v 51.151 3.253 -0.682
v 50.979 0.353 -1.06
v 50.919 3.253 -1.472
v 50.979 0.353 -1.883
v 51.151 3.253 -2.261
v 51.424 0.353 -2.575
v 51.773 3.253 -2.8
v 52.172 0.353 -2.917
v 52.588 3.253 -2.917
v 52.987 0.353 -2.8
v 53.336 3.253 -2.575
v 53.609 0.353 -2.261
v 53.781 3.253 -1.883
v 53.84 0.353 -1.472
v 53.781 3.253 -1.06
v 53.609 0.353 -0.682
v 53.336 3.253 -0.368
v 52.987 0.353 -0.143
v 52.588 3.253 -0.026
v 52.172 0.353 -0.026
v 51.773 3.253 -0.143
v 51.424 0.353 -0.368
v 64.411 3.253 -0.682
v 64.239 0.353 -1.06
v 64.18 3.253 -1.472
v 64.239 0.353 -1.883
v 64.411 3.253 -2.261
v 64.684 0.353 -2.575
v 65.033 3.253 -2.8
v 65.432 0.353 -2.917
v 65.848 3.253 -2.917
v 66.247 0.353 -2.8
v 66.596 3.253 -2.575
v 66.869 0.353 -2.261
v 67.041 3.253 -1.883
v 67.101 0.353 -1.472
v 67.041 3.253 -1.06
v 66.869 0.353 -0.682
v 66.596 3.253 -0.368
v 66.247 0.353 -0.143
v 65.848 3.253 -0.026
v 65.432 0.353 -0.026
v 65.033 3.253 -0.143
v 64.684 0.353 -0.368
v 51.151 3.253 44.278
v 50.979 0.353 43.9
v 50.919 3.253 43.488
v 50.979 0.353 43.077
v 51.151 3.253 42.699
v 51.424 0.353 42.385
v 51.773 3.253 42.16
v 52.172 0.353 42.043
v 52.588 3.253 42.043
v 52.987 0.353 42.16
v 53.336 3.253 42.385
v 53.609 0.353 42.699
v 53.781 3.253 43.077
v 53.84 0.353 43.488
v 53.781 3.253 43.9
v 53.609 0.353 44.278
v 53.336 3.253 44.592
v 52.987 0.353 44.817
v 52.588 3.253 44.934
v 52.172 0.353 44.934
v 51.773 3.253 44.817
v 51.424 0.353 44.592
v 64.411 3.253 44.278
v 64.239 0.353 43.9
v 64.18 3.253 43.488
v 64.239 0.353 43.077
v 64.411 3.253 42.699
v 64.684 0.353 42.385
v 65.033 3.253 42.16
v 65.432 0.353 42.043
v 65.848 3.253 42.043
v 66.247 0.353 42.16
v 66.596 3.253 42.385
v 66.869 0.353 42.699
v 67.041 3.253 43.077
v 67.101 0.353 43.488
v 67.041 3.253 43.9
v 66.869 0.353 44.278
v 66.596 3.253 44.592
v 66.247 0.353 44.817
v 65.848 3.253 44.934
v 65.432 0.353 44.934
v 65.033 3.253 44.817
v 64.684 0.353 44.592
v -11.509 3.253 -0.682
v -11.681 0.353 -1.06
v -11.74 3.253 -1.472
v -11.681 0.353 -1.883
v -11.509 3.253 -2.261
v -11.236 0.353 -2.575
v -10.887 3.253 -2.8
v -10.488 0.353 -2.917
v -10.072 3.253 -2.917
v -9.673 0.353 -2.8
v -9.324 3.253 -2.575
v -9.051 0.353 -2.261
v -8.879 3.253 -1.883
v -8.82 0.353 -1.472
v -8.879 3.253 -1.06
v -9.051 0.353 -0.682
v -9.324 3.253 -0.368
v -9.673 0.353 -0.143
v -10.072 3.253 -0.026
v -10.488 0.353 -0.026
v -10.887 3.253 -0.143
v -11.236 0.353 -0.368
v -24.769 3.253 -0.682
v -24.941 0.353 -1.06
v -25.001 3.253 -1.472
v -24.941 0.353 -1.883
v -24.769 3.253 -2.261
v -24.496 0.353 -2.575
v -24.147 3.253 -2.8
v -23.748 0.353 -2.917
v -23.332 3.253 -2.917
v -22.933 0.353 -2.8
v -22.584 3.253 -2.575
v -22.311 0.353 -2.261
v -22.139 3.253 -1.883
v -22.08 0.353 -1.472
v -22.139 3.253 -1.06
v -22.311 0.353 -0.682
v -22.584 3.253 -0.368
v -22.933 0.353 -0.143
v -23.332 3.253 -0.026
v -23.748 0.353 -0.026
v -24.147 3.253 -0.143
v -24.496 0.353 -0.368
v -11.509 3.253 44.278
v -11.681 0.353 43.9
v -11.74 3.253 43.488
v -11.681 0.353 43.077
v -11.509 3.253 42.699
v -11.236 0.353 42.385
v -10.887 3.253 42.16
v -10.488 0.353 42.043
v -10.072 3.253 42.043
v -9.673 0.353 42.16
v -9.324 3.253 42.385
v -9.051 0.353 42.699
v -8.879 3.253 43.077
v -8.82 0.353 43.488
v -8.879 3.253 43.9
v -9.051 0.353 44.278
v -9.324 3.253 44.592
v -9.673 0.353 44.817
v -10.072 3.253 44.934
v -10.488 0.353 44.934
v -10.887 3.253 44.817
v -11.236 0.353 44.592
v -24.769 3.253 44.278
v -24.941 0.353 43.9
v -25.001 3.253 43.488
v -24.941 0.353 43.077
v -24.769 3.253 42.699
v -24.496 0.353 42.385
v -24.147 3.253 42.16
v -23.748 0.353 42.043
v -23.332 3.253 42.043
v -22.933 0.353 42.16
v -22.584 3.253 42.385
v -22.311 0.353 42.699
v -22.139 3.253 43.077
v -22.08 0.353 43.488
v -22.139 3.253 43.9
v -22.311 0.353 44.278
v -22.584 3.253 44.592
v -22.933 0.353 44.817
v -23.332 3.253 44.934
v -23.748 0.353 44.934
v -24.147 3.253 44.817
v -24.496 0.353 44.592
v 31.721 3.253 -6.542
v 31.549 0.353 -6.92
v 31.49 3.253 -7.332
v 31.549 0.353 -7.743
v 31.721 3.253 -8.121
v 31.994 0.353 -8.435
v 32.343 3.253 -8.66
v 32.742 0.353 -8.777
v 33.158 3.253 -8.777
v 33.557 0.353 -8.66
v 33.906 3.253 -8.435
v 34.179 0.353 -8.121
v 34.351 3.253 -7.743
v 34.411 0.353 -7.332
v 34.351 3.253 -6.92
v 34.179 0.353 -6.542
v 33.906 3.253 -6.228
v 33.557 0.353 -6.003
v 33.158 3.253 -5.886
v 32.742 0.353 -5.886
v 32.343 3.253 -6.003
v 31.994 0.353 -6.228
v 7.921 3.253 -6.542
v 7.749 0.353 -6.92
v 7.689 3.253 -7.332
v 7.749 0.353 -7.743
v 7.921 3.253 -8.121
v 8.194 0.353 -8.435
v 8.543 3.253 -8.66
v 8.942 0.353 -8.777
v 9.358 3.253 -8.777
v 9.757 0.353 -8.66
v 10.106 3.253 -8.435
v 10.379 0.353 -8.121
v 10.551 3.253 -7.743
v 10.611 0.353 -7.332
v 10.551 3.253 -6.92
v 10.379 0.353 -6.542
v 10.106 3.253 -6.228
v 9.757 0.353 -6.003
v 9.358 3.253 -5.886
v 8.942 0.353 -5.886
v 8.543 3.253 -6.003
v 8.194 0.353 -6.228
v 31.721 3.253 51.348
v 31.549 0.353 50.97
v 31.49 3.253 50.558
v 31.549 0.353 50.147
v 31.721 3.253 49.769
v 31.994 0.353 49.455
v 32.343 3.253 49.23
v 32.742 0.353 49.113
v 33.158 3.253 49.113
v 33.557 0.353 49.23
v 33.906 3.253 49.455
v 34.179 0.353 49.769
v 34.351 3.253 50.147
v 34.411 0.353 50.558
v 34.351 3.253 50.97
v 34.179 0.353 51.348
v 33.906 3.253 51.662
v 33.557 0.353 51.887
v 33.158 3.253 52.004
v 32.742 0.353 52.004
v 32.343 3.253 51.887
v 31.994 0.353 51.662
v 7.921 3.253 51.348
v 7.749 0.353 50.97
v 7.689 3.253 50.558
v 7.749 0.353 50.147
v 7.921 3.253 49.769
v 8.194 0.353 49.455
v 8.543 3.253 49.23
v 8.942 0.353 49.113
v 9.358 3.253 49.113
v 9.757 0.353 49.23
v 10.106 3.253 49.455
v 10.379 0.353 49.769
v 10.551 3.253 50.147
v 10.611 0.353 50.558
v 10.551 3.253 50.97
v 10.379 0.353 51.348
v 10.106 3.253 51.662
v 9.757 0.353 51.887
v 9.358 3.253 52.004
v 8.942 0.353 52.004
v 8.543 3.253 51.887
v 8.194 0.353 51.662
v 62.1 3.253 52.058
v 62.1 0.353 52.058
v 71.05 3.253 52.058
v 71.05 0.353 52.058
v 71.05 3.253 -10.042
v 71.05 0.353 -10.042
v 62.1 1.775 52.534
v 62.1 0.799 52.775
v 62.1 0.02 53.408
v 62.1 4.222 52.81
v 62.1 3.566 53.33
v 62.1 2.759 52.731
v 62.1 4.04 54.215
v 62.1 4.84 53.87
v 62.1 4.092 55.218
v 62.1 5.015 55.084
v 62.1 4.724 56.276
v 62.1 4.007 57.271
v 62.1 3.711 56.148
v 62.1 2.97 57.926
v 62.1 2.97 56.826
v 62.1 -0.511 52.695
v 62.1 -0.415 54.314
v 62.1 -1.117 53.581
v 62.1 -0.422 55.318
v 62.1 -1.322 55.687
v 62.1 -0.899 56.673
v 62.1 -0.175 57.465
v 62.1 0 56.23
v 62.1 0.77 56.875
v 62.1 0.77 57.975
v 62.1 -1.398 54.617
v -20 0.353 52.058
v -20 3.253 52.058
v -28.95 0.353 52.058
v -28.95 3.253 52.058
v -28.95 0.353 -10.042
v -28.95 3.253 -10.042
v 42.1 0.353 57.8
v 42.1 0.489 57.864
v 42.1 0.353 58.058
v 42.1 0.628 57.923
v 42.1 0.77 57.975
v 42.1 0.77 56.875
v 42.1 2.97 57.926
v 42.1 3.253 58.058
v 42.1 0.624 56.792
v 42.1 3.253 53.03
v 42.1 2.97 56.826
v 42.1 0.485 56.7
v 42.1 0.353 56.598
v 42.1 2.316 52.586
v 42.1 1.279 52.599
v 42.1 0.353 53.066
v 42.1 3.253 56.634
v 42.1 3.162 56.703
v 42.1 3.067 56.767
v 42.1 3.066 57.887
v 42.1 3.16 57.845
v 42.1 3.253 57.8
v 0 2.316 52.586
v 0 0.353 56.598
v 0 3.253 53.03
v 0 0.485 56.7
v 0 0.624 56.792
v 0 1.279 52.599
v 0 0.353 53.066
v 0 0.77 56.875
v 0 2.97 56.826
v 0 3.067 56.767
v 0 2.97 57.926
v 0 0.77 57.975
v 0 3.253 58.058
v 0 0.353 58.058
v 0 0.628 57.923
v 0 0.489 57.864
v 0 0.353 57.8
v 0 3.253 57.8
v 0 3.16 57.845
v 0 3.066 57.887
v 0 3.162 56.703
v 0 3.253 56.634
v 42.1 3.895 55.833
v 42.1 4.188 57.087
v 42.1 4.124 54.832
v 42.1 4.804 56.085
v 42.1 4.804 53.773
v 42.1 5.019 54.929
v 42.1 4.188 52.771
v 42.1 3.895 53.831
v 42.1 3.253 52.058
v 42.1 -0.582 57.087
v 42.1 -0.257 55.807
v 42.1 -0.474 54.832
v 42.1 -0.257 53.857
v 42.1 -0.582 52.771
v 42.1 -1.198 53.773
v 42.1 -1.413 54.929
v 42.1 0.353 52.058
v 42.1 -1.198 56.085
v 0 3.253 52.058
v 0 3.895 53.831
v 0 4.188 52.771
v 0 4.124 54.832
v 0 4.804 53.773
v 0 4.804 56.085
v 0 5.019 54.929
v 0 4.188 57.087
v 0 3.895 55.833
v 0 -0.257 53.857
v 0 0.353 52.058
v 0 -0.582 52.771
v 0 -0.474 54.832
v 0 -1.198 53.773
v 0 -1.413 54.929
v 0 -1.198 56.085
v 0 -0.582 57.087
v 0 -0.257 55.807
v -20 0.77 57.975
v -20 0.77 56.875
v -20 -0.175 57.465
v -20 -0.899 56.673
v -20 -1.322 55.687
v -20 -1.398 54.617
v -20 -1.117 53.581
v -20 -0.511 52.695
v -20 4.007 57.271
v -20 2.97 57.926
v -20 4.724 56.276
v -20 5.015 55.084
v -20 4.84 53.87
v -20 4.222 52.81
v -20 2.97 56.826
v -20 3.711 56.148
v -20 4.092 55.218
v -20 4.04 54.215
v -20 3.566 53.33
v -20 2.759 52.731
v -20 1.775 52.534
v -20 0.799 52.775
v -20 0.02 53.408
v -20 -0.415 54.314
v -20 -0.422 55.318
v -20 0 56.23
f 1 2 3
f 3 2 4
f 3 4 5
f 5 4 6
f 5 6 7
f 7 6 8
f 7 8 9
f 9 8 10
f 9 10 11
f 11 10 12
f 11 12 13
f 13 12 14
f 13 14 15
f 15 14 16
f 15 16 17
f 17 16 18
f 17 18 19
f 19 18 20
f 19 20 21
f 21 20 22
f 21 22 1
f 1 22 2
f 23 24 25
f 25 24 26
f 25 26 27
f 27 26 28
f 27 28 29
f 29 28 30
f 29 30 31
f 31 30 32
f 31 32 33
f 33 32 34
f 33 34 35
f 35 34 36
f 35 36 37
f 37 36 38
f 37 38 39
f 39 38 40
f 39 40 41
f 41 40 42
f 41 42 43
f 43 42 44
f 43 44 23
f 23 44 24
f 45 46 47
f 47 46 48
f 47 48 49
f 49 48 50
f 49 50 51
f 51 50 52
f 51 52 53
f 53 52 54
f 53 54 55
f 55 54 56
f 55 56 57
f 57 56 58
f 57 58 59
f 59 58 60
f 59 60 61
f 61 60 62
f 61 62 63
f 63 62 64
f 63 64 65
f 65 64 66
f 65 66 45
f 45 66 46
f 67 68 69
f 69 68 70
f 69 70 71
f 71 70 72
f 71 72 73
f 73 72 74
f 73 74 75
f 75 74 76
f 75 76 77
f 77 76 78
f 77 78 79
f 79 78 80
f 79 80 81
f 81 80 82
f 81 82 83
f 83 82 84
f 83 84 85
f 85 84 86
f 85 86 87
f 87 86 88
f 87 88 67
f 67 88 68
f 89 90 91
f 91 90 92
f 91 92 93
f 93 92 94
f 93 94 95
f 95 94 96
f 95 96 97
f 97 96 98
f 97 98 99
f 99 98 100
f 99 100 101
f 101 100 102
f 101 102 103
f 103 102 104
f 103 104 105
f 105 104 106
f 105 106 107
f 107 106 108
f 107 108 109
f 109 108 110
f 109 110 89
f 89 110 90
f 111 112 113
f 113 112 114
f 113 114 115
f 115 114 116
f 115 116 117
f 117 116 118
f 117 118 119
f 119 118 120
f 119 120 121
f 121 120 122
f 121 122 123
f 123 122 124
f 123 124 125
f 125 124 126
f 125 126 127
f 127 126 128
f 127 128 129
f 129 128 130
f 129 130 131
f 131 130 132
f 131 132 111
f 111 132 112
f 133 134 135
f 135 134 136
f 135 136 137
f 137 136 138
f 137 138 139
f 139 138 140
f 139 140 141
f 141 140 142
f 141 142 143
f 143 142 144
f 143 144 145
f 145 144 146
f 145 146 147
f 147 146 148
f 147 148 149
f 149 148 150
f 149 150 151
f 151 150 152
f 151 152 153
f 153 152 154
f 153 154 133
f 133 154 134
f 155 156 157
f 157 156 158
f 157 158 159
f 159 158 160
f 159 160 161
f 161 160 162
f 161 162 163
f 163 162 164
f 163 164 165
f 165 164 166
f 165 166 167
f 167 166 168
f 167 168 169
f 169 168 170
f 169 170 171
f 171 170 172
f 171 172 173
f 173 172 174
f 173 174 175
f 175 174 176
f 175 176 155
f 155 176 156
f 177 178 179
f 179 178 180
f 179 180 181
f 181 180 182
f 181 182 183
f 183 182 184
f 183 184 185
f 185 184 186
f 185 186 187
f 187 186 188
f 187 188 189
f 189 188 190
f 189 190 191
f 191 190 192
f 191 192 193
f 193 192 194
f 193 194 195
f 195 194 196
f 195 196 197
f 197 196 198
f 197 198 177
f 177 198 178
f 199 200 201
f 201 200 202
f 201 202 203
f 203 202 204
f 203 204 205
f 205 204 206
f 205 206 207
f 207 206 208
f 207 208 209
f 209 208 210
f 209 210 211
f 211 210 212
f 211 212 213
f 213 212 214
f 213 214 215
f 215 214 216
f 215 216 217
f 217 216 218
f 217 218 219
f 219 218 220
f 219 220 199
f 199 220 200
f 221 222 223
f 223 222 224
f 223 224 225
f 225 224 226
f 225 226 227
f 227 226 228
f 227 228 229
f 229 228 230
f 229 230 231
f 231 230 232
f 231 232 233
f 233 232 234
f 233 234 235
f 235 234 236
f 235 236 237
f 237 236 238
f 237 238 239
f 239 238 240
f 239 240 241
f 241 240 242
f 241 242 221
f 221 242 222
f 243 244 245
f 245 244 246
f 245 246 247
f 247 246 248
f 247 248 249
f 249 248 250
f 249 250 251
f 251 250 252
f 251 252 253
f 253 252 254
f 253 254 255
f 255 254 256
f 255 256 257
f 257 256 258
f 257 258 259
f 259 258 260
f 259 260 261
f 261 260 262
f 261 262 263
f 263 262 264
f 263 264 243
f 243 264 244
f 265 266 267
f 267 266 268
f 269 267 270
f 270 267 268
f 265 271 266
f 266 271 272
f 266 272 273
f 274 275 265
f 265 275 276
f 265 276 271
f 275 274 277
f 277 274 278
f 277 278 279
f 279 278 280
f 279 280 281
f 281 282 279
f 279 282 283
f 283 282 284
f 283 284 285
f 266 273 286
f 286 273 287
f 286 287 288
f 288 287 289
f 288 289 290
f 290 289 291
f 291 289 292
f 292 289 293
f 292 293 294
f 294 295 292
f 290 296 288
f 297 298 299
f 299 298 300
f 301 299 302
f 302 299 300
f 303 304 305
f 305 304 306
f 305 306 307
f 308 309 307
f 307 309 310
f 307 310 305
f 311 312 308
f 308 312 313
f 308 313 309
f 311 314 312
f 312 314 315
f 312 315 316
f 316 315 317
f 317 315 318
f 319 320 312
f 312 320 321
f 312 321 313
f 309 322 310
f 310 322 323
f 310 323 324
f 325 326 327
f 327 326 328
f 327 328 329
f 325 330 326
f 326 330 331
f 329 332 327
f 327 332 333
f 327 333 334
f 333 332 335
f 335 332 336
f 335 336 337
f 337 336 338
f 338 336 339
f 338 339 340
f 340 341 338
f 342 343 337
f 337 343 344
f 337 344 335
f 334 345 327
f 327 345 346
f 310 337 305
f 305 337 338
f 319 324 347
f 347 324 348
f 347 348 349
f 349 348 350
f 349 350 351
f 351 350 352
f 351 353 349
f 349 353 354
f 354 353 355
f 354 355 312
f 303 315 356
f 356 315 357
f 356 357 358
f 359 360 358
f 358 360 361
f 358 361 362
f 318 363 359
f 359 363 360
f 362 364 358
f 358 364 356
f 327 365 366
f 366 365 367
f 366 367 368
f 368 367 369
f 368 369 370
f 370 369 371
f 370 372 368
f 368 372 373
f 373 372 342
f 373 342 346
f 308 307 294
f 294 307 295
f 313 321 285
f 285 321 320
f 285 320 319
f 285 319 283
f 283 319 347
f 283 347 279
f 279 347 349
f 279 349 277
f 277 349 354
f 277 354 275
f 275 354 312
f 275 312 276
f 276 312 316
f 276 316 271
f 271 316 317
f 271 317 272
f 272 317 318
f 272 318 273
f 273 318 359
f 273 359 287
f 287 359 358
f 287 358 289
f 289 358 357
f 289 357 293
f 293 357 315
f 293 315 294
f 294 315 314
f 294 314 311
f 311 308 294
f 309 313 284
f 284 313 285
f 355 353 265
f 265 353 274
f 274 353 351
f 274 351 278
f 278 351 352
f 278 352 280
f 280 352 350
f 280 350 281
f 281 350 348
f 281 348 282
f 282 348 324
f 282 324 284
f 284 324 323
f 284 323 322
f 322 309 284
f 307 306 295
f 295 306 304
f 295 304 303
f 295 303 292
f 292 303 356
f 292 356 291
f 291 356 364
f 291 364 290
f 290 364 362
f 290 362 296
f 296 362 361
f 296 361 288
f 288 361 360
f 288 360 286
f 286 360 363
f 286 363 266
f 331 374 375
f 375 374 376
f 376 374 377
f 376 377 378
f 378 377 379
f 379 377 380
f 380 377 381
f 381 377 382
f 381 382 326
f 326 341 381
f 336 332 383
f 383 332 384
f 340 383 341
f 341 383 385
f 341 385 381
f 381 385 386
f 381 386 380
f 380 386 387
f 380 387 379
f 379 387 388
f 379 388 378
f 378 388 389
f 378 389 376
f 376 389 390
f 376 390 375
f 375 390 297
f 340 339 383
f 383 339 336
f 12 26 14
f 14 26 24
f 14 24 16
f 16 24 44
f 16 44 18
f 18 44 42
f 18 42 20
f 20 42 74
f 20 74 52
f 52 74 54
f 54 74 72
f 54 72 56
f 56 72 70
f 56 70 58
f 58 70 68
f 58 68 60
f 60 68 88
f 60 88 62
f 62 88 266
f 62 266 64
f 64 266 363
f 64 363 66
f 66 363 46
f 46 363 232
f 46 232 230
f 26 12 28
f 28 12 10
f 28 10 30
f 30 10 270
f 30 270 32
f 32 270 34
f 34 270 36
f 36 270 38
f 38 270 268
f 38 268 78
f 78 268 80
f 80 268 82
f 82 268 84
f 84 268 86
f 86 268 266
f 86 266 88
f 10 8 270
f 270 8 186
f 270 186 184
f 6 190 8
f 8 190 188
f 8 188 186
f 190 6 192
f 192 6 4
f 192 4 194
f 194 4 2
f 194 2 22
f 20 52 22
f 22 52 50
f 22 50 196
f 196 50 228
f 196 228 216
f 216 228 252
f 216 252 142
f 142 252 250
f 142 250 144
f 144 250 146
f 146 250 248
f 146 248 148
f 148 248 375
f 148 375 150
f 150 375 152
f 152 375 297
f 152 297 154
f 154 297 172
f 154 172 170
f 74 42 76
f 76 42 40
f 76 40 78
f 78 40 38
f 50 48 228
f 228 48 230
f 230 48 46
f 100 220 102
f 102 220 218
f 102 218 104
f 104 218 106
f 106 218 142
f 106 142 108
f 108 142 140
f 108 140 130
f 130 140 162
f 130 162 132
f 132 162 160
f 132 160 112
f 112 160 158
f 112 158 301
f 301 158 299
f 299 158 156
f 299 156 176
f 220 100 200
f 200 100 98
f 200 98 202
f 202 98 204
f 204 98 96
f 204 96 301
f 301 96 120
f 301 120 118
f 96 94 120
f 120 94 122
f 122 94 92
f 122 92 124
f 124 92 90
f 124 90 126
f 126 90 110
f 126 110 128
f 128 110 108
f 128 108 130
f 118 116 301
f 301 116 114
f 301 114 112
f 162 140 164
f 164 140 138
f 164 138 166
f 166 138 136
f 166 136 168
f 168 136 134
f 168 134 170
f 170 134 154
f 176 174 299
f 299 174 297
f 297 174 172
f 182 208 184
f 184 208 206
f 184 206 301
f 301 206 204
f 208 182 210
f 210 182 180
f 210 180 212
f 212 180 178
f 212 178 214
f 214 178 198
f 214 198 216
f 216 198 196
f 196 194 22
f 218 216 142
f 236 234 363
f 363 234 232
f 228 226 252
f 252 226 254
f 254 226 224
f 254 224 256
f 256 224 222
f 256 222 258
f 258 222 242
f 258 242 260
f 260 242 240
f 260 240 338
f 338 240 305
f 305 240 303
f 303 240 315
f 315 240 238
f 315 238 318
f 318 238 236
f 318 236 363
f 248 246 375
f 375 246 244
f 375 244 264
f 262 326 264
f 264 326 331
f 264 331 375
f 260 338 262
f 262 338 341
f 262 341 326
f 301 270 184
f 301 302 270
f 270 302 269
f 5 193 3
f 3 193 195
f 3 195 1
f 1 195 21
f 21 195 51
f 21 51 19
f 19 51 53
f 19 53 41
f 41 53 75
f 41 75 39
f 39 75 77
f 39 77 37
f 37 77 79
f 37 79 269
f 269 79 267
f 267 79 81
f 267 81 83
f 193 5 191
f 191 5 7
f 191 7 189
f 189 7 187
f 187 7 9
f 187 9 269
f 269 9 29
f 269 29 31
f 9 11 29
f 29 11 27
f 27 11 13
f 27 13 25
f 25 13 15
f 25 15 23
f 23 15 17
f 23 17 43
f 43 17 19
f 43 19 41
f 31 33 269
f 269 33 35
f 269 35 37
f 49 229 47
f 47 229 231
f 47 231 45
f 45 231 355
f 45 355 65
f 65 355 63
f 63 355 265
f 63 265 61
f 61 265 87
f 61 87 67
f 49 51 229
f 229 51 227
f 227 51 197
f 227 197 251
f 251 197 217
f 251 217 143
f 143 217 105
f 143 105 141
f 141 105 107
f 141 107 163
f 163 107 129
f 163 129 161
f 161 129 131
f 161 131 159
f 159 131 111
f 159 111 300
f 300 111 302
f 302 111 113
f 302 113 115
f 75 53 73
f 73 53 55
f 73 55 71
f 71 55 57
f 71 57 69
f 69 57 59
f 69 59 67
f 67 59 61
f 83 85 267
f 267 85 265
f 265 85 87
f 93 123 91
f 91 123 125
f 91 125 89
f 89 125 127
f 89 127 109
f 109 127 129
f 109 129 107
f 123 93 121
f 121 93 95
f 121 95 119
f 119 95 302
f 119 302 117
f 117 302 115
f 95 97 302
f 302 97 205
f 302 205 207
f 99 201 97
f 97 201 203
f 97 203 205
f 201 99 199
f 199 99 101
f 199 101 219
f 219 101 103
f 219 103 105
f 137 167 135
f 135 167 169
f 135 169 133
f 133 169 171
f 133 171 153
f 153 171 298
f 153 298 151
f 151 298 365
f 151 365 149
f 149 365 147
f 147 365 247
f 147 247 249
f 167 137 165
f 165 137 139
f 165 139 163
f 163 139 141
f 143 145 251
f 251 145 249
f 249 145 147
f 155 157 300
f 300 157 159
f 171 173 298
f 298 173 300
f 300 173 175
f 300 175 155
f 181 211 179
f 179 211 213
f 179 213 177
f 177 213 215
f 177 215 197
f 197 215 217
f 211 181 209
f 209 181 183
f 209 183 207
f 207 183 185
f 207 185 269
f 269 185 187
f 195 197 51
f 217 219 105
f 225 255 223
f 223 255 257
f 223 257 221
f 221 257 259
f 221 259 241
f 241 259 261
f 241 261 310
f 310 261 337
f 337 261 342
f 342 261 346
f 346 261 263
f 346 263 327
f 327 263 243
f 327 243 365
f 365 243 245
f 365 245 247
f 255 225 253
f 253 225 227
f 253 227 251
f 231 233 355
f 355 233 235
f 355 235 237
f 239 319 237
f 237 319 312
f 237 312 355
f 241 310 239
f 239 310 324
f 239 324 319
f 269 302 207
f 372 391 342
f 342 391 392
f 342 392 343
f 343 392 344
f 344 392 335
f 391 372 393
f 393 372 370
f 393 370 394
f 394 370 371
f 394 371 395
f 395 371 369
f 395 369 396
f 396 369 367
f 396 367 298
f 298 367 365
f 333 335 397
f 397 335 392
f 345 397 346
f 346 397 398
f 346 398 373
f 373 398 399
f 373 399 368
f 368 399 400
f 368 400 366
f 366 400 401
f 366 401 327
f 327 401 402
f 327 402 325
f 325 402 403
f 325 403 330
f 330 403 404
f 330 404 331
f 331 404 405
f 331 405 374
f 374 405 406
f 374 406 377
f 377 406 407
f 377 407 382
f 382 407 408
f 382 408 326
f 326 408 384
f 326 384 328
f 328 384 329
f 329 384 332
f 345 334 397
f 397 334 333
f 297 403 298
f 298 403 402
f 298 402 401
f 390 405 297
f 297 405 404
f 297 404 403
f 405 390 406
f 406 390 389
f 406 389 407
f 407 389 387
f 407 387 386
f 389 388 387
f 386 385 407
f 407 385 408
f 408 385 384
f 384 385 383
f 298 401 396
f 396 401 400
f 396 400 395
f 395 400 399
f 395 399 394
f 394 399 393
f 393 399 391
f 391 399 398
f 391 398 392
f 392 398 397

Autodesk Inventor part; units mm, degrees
ref_plane "YZ Plane" through (0, 0, 0) normal (1, 0, 0) x (0, 1, 0)
ref_plane "XZ Plane" through (0, 0, 0) normal (0, 1, 0) x (-1, 0, 0)
ref_plane "XY Plane" through (0, 0, 0) normal (0, 0, 1) x (1, 0, 0)
sketch "Sketch1" plane through (0, 0, 0) normal (1, 0, 0) x (0, 1, 0)
  line L0 (3.2531, 52.0584) -> (0.3531, 52.0584)
  line L1 (0.3531, 52.0584) -> (0.3531, -10.0416)
  line L2 (0.3531, -10.0416) -> (3.2531, -10.0416)
  line L3 (3.2531, -10.0416) -> (3.2531, 52.0584)
  arc A0 (3.2531, 52.0584) -> (2.9699, 57.9259) centre (1.8031, 54.929) ccw
  arc A1 (0.7699, 57.9745) -> (0.3531, 52.0584) centre (1.8031, 54.929) ccw
  line L4 (0.7699, 57.9745) -> (0.7699, 56.8745)
  line L5 (2.9699, 57.9259) -> (2.9699, 56.8259)
  arc A2 (0.7699, 56.8745) -> (2.9699, 56.8259) centre (1.8253, 54.832) ccw
  point P0 (0, 0)
  dimension "d0" = 2.9
  dimension "d1" = 62.1
  dimension "d156" = 1.1
  dimension "d157" = 1.1
  dimension "d158" = 2.2
extrude "Extrusion1" add sketch "Sketch1" against normal blind 20
sketch "Sketch3" plane through (0, 0, 0) normal (1, 0, 0) x (0, 0, -1)
  arc A0 (-52.0584, 3.2531) -> (-57.9259, 2.9699) centre (-54.929, 1.8031) ccw projected
  line L0 (10.0416, 0.3531) -> (-52.0584, 0.3531) projected
  line L1 (-52.0584, 3.2531) -> (10.0416, 3.2531)
  line L2 (10.0416, 3.2531) -> (10.0416, 0.3531)
  line L3 (10.0416, 0.3531) -> (-52.0584, 0.3531)
  line L4 (-52.0584, 0.3531) -> (-52.0584, 3.2531)
  point P0 (0, 0)
extrude "Extrusion2" add sketch "Sketch3" along normal blind 42.1
sketch "Sketch4" plane through (42.1, 0, 0) normal (1, 0, 0) x (0, 0, -1)
  line L0 (10.0416, 0.3531) -> (-52.0584, 0.3531) projected
  line L1 (10.0416, 0.3531) -> (-52.0584, 0.3531)
  line L2 (-52.0584, 0.3531) -> (-52.0584, 3.2531)
  line L3 (-52.0584, 3.2531) -> (10.0416, 3.2531)
  line L4 (10.0416, 3.2531) -> (10.0416, 0.3531)
  arc A0 (-57.9745, 0.7699) -> (-52.0584, 0.3531) centre (-54.929, 1.8031) ccw projected
  arc A1 (-57.9745, 0.7699) -> (-52.0584, 0.3531) centre (-54.929, 1.8031) ccw
  arc A2 (-52.0584, 3.2531) -> (-57.9259, 2.9699) centre (-54.929, 1.8031) ccw projected
  arc A3 (-52.0584, 3.2531) -> (-57.9259, 2.9699) centre (-54.929, 1.8031) ccw
  arc A4 (-56.8745, 0.7699) -> (-56.8259, 2.9699) centre (-54.832, 1.8253) ccw projected
  arc A5 (-56.8745, 0.7699) -> (-56.8259, 2.9699) centre (-54.832, 1.8253) ccw
  line L5 (-56.8745, 0.7699) -> (-57.9745, 0.7699) projected
  line L6 (-56.8745, 0.7699) -> (-57.9745, 0.7699)
  line L7 (-57.9259, 2.9699) -> (-56.8259, 2.9699) projected
  line L8 (-56.8259, 2.9699) -> (-57.9259, 2.9699)
  point P0 (0, 0)
  dimension "d159" = 1.1
  dimension "d160" = 2.2
extrude "Extrusion3" add sketch "Sketch4" along normal blind 20
sketch "Sketch9" plane through (0, 0.3531, 52.0584) normal (0, 0, 1) x (1, 0, 0)
  line L0 (0, 2.9) -> (42.1, 2.9) projected
  line L1 (0, 2.9) -> (42.1, 2.9)
  line L2 (42.1, 2.9) -> (42.1, 0)
  line L3 (42.1, 0) -> (0, 0)
  line L4 (0, 0) -> (0, 2.9)
  point P0 (0, -0.3531)
extrude "Extrusion4" add sketch "Sketch9" along normal blind 6
sketch "Sketch10" plane through (-20, 0, 0) normal (-1, 0, 0) x (0, 0, 1)
  arc A0 (52.0584, 0.3531) -> (57.9745, 0.7699) centre (54.929, 1.8031) ccw projected
  line L0 (-10.0416, 3.2531) -> (-10.0416, 0.3531) projected
  line L1 (52.0584, 0.3531) -> (-10.0416, 0.3531)
  line L2 (-10.0416, 0.3531) -> (-10.0416, 3.2531)
  line L3 (-10.0416, 3.2531) -> (52.0584, 3.2531)
  line L4 (52.0584, 3.2531) -> (52.0584, 0.3531)
  point P0 (0, 0)
extrude "Extrusion5" add sketch "Sketch10" along normal blind 8.95
sketch "Sketch11" plane through (62.1, 0, 0) normal (1, 0, 0) x (0, 0, -1)
  line L0 (10.0416, 0.3531) -> (10.0416, 3.2531) projected
  arc A0 (-52.0584, 3.2531) -> (-57.7996, 3.2531) centre (-54.929, 1.8031) ccw projected
  line L1 (10.0416, 0.3531) -> (-52.0584, 0.3531)
  line L2 (-52.0584, 0.3531) -> (-52.0584, 3.2531)
  line L3 (-52.0584, 3.2531) -> (10.0416, 3.2531)
  line L4 (10.0416, 3.2531) -> (10.0416, 0.3531)
  point P0 (0, 0)
extrude "Extrusion6" add sketch "Sketch11" along normal blind 8.95
sketch "Sketch5" plane through (-20, 0.3531, -10.0416) normal (0, -1, 0) x (1, 0, 0)
  line L0 (20, 62.1) -> (62.1, 62.1) projected
  line L1 (0, 0) -> (0, 62.1) projected
  line L2 (62.1, 68.1) -> (20, 68.1) projected
  line L3 (-8.95, 0) -> (-8.95, 62.1) projected
  point P0 (20, 10.0416)
  point P1 (29.15, 60.6)
  dimension "d80" = 38.1
  dimension "d81" = 7.5
hole "Hole1" at (9.15, 0.3531, 50.5584) direction (0, 1, 0) diameter 2.921 end through all
sketch "Sketch6" plane through (-20, 0.3531, -10.0416) normal (0, -1, 0) x (1, 0, 0)
  line L0 (20, 62.1) -> (62.1, 62.1) projected
  circle A0 centre (29.15, 60.6) radius 1.4605 projected
  line L1 (62.1, 68.1) -> (20, 68.1) projected
  point P0 (20, 10.0416)
  point P1 (52.95, 60.6)
  dimension "d42" = 23.8
  dimension "d53" = 7.5
hole "Hole2" at (32.95, 0.3531, 50.5584) direction (0, 1, 0) diameter 2.921 end through all
sketch "Sketch7" plane through (-20, 0.3531, -10.0416) normal (0, -1, 0) x (1, 0, 0)
  line L0 (0, 0) -> (0, 62.1) projected
  circle A0 centre (29.15, 60.6) radius 1.4605 projected
  line L1 (-8.95, 0) -> (-8.95, 62.1) projected
  point P0 (20, 10.0416)
  point P1 (29.15, 2.71)
  dimension "d49" = 57.89
  dimension "d82" = 38.1
hole "Hole3" at (9.15, 0.3531, -7.3316) direction (0, 1, 0) diameter 2.921 end through all
sketch "Sketch8" plane through (-20, 0.3531, -10.0416) normal (0, -1, 0) x (1, 0, 0)
  circle A0 centre (29.15, 2.71) radius 1.4605 projected
  circle A1 centre (52.95, 60.6) radius 1.4605 projected
  point P0 (20, 10.0416)
  point P1 (52.95, 2.71)
  point P2 (41.1972, 0)
  point P3 (38.7028, 0)
  point P4 (60, 64.989)
  point P5 (60, 63.311)
  dimension "d48" = 23.8
  dimension "d54" = 57.89
hole "Hole4" at (32.95, 0.3531, -7.3316) direction (0, 1, 0) diameter 2.921 end through all
sketch "Sketch12" plane through (0, 0.3531, 58.0584) normal (0, -1, 0) x (1, 0, 0)
  line L0 (-20, -6) -> (-28.95, -6) projected
  line L1 (-28.95, -68.1) -> (-28.95, -6) projected
  point P0 (0, -58.0584)
  point P1 (-23.54, -14.57)
  dimension "d133" = 8.57
  dimension "d134" = 5.41
hole "Hole5" at (-23.54, 0.3531, 43.4884) direction (0, 1, 0) diameter 2.921 end through all
sketch "Sketch13" plane through (0, 0.3531, 58.0584) normal (0, -1, 0) x (1, 0, 0)
  line L0 (0, -6) -> (-20, -6) projected
  circle A0 centre (-23.54, -14.57) radius 1.4605 projected
  point P0 (0, -58.0584)
  point P1 (-10.28, -14.57)
  dimension "d135" = 8.57
  dimension "d136" = 13.26
hole "Hole6" at (-10.28, 0.3531, 43.4884) direction (0, 1, 0) diameter 2.921 end through all
sketch "Sketch14" plane through (0, 0.3531, 58.0584) normal (0, -1, 0) x (1, 0, 0)
  line L0 (-28.95, -68.1) -> (-28.95, -6) projected
  circle A0 centre (-23.54, -14.57) radius 1.4605 projected
  point P0 (0, -58.0584)
  point P1 (-23.54, -59.53)
  dimension "d137" = 5.41
  dimension "d138" = 44.96
hole "Hole7" at (-23.54, 0.3531, -1.4716) direction (0, 1, 0) diameter 2.921 end through all
sketch "Sketch15" plane through (0, 0.3531, 58.0584) normal (0, -1, 0) x (1, 0, 0)
  circle A0 centre (-10.28, -14.57) radius 1.4605 projected
  circle A1 centre (-23.54, -59.53) radius 1.4605 projected
  point P0 (0, -58.0584)
  point P1 (-10.28, -59.53)
  dimension "d139" = 44.96
  dimension "d148" = 13.26
hole "Hole8" at (-10.28, 0.3531, -1.4716) direction (0, 1, 0) diameter 2.921 end through all
sketch "Sketch17" plane through (0, 0.3531, 58.0584) normal (0, -1, 0) x (1, 0, 0)
  line L0 (71.05, -6) -> (71.05, -68.1) projected
  line L1 (62.1, -6) -> (71.05, -6) projected
  point P0 (0, -58.0584)
  point P1 (65.64, -14.57)
  dimension "d142" = 5.41
  dimension "d147" = 8.57
hole "Hole10" at (65.64, 0.3531, 43.4884) direction (0, 1, 0) diameter 2.921 end through all
sketch "Sketch16" plane through (0, 0.3531, 58.0584) normal (0, -1, 0) x (1, 0, 0)
  circle A0 centre (65.64, -14.57) radius 1.4605 projected
  line L0 (42.1, -6) -> (62.1, -6) projected
  point P0 (0, -58.0584)
  point P1 (52.38, -14.57)
  dimension "d144" = 13.26
  dimension "d146" = 8.57
hole "Hole9" at (52.38, 0.3531, 43.4884) direction (0, 1, 0) diameter 2.921 end through all
sketch "Sketch19" plane through (0, 0.3531, 58.0584) normal (0, -1, 0) x (1, 0, 0)
  circle A0 centre (65.64, -14.57) radius 1.4605 projected
  line L0 (71.05, -6) -> (71.05, -68.1) projected
  point P0 (0, -58.0584)
  point P1 (65.64, -59.53)
  dimension "d141" = 44.96
  dimension "d143" = 5.41
hole "Hole12" at (65.64, 0.3531, -1.4716) direction (0, 1, 0) diameter 2.921 end through all
sketch "Sketch18" plane through (0, 0.3531, 58.0584) normal (0, -1, 0) x (1, 0, 0)
  circle A0 centre (52.38, -14.57) radius 1.4605 projected
  circle A1 centre (65.64, -59.53) radius 1.4605 projected
  point P0 (0, -58.0584)
  point P1 (52.38, -59.53)
  dimension "d140" = 44.96
  dimension "d145" = 13.26
hole "Hole11" at (52.38, 0.3531, -1.4716) direction (0, 1, 0) diameter 2.921 end through all
